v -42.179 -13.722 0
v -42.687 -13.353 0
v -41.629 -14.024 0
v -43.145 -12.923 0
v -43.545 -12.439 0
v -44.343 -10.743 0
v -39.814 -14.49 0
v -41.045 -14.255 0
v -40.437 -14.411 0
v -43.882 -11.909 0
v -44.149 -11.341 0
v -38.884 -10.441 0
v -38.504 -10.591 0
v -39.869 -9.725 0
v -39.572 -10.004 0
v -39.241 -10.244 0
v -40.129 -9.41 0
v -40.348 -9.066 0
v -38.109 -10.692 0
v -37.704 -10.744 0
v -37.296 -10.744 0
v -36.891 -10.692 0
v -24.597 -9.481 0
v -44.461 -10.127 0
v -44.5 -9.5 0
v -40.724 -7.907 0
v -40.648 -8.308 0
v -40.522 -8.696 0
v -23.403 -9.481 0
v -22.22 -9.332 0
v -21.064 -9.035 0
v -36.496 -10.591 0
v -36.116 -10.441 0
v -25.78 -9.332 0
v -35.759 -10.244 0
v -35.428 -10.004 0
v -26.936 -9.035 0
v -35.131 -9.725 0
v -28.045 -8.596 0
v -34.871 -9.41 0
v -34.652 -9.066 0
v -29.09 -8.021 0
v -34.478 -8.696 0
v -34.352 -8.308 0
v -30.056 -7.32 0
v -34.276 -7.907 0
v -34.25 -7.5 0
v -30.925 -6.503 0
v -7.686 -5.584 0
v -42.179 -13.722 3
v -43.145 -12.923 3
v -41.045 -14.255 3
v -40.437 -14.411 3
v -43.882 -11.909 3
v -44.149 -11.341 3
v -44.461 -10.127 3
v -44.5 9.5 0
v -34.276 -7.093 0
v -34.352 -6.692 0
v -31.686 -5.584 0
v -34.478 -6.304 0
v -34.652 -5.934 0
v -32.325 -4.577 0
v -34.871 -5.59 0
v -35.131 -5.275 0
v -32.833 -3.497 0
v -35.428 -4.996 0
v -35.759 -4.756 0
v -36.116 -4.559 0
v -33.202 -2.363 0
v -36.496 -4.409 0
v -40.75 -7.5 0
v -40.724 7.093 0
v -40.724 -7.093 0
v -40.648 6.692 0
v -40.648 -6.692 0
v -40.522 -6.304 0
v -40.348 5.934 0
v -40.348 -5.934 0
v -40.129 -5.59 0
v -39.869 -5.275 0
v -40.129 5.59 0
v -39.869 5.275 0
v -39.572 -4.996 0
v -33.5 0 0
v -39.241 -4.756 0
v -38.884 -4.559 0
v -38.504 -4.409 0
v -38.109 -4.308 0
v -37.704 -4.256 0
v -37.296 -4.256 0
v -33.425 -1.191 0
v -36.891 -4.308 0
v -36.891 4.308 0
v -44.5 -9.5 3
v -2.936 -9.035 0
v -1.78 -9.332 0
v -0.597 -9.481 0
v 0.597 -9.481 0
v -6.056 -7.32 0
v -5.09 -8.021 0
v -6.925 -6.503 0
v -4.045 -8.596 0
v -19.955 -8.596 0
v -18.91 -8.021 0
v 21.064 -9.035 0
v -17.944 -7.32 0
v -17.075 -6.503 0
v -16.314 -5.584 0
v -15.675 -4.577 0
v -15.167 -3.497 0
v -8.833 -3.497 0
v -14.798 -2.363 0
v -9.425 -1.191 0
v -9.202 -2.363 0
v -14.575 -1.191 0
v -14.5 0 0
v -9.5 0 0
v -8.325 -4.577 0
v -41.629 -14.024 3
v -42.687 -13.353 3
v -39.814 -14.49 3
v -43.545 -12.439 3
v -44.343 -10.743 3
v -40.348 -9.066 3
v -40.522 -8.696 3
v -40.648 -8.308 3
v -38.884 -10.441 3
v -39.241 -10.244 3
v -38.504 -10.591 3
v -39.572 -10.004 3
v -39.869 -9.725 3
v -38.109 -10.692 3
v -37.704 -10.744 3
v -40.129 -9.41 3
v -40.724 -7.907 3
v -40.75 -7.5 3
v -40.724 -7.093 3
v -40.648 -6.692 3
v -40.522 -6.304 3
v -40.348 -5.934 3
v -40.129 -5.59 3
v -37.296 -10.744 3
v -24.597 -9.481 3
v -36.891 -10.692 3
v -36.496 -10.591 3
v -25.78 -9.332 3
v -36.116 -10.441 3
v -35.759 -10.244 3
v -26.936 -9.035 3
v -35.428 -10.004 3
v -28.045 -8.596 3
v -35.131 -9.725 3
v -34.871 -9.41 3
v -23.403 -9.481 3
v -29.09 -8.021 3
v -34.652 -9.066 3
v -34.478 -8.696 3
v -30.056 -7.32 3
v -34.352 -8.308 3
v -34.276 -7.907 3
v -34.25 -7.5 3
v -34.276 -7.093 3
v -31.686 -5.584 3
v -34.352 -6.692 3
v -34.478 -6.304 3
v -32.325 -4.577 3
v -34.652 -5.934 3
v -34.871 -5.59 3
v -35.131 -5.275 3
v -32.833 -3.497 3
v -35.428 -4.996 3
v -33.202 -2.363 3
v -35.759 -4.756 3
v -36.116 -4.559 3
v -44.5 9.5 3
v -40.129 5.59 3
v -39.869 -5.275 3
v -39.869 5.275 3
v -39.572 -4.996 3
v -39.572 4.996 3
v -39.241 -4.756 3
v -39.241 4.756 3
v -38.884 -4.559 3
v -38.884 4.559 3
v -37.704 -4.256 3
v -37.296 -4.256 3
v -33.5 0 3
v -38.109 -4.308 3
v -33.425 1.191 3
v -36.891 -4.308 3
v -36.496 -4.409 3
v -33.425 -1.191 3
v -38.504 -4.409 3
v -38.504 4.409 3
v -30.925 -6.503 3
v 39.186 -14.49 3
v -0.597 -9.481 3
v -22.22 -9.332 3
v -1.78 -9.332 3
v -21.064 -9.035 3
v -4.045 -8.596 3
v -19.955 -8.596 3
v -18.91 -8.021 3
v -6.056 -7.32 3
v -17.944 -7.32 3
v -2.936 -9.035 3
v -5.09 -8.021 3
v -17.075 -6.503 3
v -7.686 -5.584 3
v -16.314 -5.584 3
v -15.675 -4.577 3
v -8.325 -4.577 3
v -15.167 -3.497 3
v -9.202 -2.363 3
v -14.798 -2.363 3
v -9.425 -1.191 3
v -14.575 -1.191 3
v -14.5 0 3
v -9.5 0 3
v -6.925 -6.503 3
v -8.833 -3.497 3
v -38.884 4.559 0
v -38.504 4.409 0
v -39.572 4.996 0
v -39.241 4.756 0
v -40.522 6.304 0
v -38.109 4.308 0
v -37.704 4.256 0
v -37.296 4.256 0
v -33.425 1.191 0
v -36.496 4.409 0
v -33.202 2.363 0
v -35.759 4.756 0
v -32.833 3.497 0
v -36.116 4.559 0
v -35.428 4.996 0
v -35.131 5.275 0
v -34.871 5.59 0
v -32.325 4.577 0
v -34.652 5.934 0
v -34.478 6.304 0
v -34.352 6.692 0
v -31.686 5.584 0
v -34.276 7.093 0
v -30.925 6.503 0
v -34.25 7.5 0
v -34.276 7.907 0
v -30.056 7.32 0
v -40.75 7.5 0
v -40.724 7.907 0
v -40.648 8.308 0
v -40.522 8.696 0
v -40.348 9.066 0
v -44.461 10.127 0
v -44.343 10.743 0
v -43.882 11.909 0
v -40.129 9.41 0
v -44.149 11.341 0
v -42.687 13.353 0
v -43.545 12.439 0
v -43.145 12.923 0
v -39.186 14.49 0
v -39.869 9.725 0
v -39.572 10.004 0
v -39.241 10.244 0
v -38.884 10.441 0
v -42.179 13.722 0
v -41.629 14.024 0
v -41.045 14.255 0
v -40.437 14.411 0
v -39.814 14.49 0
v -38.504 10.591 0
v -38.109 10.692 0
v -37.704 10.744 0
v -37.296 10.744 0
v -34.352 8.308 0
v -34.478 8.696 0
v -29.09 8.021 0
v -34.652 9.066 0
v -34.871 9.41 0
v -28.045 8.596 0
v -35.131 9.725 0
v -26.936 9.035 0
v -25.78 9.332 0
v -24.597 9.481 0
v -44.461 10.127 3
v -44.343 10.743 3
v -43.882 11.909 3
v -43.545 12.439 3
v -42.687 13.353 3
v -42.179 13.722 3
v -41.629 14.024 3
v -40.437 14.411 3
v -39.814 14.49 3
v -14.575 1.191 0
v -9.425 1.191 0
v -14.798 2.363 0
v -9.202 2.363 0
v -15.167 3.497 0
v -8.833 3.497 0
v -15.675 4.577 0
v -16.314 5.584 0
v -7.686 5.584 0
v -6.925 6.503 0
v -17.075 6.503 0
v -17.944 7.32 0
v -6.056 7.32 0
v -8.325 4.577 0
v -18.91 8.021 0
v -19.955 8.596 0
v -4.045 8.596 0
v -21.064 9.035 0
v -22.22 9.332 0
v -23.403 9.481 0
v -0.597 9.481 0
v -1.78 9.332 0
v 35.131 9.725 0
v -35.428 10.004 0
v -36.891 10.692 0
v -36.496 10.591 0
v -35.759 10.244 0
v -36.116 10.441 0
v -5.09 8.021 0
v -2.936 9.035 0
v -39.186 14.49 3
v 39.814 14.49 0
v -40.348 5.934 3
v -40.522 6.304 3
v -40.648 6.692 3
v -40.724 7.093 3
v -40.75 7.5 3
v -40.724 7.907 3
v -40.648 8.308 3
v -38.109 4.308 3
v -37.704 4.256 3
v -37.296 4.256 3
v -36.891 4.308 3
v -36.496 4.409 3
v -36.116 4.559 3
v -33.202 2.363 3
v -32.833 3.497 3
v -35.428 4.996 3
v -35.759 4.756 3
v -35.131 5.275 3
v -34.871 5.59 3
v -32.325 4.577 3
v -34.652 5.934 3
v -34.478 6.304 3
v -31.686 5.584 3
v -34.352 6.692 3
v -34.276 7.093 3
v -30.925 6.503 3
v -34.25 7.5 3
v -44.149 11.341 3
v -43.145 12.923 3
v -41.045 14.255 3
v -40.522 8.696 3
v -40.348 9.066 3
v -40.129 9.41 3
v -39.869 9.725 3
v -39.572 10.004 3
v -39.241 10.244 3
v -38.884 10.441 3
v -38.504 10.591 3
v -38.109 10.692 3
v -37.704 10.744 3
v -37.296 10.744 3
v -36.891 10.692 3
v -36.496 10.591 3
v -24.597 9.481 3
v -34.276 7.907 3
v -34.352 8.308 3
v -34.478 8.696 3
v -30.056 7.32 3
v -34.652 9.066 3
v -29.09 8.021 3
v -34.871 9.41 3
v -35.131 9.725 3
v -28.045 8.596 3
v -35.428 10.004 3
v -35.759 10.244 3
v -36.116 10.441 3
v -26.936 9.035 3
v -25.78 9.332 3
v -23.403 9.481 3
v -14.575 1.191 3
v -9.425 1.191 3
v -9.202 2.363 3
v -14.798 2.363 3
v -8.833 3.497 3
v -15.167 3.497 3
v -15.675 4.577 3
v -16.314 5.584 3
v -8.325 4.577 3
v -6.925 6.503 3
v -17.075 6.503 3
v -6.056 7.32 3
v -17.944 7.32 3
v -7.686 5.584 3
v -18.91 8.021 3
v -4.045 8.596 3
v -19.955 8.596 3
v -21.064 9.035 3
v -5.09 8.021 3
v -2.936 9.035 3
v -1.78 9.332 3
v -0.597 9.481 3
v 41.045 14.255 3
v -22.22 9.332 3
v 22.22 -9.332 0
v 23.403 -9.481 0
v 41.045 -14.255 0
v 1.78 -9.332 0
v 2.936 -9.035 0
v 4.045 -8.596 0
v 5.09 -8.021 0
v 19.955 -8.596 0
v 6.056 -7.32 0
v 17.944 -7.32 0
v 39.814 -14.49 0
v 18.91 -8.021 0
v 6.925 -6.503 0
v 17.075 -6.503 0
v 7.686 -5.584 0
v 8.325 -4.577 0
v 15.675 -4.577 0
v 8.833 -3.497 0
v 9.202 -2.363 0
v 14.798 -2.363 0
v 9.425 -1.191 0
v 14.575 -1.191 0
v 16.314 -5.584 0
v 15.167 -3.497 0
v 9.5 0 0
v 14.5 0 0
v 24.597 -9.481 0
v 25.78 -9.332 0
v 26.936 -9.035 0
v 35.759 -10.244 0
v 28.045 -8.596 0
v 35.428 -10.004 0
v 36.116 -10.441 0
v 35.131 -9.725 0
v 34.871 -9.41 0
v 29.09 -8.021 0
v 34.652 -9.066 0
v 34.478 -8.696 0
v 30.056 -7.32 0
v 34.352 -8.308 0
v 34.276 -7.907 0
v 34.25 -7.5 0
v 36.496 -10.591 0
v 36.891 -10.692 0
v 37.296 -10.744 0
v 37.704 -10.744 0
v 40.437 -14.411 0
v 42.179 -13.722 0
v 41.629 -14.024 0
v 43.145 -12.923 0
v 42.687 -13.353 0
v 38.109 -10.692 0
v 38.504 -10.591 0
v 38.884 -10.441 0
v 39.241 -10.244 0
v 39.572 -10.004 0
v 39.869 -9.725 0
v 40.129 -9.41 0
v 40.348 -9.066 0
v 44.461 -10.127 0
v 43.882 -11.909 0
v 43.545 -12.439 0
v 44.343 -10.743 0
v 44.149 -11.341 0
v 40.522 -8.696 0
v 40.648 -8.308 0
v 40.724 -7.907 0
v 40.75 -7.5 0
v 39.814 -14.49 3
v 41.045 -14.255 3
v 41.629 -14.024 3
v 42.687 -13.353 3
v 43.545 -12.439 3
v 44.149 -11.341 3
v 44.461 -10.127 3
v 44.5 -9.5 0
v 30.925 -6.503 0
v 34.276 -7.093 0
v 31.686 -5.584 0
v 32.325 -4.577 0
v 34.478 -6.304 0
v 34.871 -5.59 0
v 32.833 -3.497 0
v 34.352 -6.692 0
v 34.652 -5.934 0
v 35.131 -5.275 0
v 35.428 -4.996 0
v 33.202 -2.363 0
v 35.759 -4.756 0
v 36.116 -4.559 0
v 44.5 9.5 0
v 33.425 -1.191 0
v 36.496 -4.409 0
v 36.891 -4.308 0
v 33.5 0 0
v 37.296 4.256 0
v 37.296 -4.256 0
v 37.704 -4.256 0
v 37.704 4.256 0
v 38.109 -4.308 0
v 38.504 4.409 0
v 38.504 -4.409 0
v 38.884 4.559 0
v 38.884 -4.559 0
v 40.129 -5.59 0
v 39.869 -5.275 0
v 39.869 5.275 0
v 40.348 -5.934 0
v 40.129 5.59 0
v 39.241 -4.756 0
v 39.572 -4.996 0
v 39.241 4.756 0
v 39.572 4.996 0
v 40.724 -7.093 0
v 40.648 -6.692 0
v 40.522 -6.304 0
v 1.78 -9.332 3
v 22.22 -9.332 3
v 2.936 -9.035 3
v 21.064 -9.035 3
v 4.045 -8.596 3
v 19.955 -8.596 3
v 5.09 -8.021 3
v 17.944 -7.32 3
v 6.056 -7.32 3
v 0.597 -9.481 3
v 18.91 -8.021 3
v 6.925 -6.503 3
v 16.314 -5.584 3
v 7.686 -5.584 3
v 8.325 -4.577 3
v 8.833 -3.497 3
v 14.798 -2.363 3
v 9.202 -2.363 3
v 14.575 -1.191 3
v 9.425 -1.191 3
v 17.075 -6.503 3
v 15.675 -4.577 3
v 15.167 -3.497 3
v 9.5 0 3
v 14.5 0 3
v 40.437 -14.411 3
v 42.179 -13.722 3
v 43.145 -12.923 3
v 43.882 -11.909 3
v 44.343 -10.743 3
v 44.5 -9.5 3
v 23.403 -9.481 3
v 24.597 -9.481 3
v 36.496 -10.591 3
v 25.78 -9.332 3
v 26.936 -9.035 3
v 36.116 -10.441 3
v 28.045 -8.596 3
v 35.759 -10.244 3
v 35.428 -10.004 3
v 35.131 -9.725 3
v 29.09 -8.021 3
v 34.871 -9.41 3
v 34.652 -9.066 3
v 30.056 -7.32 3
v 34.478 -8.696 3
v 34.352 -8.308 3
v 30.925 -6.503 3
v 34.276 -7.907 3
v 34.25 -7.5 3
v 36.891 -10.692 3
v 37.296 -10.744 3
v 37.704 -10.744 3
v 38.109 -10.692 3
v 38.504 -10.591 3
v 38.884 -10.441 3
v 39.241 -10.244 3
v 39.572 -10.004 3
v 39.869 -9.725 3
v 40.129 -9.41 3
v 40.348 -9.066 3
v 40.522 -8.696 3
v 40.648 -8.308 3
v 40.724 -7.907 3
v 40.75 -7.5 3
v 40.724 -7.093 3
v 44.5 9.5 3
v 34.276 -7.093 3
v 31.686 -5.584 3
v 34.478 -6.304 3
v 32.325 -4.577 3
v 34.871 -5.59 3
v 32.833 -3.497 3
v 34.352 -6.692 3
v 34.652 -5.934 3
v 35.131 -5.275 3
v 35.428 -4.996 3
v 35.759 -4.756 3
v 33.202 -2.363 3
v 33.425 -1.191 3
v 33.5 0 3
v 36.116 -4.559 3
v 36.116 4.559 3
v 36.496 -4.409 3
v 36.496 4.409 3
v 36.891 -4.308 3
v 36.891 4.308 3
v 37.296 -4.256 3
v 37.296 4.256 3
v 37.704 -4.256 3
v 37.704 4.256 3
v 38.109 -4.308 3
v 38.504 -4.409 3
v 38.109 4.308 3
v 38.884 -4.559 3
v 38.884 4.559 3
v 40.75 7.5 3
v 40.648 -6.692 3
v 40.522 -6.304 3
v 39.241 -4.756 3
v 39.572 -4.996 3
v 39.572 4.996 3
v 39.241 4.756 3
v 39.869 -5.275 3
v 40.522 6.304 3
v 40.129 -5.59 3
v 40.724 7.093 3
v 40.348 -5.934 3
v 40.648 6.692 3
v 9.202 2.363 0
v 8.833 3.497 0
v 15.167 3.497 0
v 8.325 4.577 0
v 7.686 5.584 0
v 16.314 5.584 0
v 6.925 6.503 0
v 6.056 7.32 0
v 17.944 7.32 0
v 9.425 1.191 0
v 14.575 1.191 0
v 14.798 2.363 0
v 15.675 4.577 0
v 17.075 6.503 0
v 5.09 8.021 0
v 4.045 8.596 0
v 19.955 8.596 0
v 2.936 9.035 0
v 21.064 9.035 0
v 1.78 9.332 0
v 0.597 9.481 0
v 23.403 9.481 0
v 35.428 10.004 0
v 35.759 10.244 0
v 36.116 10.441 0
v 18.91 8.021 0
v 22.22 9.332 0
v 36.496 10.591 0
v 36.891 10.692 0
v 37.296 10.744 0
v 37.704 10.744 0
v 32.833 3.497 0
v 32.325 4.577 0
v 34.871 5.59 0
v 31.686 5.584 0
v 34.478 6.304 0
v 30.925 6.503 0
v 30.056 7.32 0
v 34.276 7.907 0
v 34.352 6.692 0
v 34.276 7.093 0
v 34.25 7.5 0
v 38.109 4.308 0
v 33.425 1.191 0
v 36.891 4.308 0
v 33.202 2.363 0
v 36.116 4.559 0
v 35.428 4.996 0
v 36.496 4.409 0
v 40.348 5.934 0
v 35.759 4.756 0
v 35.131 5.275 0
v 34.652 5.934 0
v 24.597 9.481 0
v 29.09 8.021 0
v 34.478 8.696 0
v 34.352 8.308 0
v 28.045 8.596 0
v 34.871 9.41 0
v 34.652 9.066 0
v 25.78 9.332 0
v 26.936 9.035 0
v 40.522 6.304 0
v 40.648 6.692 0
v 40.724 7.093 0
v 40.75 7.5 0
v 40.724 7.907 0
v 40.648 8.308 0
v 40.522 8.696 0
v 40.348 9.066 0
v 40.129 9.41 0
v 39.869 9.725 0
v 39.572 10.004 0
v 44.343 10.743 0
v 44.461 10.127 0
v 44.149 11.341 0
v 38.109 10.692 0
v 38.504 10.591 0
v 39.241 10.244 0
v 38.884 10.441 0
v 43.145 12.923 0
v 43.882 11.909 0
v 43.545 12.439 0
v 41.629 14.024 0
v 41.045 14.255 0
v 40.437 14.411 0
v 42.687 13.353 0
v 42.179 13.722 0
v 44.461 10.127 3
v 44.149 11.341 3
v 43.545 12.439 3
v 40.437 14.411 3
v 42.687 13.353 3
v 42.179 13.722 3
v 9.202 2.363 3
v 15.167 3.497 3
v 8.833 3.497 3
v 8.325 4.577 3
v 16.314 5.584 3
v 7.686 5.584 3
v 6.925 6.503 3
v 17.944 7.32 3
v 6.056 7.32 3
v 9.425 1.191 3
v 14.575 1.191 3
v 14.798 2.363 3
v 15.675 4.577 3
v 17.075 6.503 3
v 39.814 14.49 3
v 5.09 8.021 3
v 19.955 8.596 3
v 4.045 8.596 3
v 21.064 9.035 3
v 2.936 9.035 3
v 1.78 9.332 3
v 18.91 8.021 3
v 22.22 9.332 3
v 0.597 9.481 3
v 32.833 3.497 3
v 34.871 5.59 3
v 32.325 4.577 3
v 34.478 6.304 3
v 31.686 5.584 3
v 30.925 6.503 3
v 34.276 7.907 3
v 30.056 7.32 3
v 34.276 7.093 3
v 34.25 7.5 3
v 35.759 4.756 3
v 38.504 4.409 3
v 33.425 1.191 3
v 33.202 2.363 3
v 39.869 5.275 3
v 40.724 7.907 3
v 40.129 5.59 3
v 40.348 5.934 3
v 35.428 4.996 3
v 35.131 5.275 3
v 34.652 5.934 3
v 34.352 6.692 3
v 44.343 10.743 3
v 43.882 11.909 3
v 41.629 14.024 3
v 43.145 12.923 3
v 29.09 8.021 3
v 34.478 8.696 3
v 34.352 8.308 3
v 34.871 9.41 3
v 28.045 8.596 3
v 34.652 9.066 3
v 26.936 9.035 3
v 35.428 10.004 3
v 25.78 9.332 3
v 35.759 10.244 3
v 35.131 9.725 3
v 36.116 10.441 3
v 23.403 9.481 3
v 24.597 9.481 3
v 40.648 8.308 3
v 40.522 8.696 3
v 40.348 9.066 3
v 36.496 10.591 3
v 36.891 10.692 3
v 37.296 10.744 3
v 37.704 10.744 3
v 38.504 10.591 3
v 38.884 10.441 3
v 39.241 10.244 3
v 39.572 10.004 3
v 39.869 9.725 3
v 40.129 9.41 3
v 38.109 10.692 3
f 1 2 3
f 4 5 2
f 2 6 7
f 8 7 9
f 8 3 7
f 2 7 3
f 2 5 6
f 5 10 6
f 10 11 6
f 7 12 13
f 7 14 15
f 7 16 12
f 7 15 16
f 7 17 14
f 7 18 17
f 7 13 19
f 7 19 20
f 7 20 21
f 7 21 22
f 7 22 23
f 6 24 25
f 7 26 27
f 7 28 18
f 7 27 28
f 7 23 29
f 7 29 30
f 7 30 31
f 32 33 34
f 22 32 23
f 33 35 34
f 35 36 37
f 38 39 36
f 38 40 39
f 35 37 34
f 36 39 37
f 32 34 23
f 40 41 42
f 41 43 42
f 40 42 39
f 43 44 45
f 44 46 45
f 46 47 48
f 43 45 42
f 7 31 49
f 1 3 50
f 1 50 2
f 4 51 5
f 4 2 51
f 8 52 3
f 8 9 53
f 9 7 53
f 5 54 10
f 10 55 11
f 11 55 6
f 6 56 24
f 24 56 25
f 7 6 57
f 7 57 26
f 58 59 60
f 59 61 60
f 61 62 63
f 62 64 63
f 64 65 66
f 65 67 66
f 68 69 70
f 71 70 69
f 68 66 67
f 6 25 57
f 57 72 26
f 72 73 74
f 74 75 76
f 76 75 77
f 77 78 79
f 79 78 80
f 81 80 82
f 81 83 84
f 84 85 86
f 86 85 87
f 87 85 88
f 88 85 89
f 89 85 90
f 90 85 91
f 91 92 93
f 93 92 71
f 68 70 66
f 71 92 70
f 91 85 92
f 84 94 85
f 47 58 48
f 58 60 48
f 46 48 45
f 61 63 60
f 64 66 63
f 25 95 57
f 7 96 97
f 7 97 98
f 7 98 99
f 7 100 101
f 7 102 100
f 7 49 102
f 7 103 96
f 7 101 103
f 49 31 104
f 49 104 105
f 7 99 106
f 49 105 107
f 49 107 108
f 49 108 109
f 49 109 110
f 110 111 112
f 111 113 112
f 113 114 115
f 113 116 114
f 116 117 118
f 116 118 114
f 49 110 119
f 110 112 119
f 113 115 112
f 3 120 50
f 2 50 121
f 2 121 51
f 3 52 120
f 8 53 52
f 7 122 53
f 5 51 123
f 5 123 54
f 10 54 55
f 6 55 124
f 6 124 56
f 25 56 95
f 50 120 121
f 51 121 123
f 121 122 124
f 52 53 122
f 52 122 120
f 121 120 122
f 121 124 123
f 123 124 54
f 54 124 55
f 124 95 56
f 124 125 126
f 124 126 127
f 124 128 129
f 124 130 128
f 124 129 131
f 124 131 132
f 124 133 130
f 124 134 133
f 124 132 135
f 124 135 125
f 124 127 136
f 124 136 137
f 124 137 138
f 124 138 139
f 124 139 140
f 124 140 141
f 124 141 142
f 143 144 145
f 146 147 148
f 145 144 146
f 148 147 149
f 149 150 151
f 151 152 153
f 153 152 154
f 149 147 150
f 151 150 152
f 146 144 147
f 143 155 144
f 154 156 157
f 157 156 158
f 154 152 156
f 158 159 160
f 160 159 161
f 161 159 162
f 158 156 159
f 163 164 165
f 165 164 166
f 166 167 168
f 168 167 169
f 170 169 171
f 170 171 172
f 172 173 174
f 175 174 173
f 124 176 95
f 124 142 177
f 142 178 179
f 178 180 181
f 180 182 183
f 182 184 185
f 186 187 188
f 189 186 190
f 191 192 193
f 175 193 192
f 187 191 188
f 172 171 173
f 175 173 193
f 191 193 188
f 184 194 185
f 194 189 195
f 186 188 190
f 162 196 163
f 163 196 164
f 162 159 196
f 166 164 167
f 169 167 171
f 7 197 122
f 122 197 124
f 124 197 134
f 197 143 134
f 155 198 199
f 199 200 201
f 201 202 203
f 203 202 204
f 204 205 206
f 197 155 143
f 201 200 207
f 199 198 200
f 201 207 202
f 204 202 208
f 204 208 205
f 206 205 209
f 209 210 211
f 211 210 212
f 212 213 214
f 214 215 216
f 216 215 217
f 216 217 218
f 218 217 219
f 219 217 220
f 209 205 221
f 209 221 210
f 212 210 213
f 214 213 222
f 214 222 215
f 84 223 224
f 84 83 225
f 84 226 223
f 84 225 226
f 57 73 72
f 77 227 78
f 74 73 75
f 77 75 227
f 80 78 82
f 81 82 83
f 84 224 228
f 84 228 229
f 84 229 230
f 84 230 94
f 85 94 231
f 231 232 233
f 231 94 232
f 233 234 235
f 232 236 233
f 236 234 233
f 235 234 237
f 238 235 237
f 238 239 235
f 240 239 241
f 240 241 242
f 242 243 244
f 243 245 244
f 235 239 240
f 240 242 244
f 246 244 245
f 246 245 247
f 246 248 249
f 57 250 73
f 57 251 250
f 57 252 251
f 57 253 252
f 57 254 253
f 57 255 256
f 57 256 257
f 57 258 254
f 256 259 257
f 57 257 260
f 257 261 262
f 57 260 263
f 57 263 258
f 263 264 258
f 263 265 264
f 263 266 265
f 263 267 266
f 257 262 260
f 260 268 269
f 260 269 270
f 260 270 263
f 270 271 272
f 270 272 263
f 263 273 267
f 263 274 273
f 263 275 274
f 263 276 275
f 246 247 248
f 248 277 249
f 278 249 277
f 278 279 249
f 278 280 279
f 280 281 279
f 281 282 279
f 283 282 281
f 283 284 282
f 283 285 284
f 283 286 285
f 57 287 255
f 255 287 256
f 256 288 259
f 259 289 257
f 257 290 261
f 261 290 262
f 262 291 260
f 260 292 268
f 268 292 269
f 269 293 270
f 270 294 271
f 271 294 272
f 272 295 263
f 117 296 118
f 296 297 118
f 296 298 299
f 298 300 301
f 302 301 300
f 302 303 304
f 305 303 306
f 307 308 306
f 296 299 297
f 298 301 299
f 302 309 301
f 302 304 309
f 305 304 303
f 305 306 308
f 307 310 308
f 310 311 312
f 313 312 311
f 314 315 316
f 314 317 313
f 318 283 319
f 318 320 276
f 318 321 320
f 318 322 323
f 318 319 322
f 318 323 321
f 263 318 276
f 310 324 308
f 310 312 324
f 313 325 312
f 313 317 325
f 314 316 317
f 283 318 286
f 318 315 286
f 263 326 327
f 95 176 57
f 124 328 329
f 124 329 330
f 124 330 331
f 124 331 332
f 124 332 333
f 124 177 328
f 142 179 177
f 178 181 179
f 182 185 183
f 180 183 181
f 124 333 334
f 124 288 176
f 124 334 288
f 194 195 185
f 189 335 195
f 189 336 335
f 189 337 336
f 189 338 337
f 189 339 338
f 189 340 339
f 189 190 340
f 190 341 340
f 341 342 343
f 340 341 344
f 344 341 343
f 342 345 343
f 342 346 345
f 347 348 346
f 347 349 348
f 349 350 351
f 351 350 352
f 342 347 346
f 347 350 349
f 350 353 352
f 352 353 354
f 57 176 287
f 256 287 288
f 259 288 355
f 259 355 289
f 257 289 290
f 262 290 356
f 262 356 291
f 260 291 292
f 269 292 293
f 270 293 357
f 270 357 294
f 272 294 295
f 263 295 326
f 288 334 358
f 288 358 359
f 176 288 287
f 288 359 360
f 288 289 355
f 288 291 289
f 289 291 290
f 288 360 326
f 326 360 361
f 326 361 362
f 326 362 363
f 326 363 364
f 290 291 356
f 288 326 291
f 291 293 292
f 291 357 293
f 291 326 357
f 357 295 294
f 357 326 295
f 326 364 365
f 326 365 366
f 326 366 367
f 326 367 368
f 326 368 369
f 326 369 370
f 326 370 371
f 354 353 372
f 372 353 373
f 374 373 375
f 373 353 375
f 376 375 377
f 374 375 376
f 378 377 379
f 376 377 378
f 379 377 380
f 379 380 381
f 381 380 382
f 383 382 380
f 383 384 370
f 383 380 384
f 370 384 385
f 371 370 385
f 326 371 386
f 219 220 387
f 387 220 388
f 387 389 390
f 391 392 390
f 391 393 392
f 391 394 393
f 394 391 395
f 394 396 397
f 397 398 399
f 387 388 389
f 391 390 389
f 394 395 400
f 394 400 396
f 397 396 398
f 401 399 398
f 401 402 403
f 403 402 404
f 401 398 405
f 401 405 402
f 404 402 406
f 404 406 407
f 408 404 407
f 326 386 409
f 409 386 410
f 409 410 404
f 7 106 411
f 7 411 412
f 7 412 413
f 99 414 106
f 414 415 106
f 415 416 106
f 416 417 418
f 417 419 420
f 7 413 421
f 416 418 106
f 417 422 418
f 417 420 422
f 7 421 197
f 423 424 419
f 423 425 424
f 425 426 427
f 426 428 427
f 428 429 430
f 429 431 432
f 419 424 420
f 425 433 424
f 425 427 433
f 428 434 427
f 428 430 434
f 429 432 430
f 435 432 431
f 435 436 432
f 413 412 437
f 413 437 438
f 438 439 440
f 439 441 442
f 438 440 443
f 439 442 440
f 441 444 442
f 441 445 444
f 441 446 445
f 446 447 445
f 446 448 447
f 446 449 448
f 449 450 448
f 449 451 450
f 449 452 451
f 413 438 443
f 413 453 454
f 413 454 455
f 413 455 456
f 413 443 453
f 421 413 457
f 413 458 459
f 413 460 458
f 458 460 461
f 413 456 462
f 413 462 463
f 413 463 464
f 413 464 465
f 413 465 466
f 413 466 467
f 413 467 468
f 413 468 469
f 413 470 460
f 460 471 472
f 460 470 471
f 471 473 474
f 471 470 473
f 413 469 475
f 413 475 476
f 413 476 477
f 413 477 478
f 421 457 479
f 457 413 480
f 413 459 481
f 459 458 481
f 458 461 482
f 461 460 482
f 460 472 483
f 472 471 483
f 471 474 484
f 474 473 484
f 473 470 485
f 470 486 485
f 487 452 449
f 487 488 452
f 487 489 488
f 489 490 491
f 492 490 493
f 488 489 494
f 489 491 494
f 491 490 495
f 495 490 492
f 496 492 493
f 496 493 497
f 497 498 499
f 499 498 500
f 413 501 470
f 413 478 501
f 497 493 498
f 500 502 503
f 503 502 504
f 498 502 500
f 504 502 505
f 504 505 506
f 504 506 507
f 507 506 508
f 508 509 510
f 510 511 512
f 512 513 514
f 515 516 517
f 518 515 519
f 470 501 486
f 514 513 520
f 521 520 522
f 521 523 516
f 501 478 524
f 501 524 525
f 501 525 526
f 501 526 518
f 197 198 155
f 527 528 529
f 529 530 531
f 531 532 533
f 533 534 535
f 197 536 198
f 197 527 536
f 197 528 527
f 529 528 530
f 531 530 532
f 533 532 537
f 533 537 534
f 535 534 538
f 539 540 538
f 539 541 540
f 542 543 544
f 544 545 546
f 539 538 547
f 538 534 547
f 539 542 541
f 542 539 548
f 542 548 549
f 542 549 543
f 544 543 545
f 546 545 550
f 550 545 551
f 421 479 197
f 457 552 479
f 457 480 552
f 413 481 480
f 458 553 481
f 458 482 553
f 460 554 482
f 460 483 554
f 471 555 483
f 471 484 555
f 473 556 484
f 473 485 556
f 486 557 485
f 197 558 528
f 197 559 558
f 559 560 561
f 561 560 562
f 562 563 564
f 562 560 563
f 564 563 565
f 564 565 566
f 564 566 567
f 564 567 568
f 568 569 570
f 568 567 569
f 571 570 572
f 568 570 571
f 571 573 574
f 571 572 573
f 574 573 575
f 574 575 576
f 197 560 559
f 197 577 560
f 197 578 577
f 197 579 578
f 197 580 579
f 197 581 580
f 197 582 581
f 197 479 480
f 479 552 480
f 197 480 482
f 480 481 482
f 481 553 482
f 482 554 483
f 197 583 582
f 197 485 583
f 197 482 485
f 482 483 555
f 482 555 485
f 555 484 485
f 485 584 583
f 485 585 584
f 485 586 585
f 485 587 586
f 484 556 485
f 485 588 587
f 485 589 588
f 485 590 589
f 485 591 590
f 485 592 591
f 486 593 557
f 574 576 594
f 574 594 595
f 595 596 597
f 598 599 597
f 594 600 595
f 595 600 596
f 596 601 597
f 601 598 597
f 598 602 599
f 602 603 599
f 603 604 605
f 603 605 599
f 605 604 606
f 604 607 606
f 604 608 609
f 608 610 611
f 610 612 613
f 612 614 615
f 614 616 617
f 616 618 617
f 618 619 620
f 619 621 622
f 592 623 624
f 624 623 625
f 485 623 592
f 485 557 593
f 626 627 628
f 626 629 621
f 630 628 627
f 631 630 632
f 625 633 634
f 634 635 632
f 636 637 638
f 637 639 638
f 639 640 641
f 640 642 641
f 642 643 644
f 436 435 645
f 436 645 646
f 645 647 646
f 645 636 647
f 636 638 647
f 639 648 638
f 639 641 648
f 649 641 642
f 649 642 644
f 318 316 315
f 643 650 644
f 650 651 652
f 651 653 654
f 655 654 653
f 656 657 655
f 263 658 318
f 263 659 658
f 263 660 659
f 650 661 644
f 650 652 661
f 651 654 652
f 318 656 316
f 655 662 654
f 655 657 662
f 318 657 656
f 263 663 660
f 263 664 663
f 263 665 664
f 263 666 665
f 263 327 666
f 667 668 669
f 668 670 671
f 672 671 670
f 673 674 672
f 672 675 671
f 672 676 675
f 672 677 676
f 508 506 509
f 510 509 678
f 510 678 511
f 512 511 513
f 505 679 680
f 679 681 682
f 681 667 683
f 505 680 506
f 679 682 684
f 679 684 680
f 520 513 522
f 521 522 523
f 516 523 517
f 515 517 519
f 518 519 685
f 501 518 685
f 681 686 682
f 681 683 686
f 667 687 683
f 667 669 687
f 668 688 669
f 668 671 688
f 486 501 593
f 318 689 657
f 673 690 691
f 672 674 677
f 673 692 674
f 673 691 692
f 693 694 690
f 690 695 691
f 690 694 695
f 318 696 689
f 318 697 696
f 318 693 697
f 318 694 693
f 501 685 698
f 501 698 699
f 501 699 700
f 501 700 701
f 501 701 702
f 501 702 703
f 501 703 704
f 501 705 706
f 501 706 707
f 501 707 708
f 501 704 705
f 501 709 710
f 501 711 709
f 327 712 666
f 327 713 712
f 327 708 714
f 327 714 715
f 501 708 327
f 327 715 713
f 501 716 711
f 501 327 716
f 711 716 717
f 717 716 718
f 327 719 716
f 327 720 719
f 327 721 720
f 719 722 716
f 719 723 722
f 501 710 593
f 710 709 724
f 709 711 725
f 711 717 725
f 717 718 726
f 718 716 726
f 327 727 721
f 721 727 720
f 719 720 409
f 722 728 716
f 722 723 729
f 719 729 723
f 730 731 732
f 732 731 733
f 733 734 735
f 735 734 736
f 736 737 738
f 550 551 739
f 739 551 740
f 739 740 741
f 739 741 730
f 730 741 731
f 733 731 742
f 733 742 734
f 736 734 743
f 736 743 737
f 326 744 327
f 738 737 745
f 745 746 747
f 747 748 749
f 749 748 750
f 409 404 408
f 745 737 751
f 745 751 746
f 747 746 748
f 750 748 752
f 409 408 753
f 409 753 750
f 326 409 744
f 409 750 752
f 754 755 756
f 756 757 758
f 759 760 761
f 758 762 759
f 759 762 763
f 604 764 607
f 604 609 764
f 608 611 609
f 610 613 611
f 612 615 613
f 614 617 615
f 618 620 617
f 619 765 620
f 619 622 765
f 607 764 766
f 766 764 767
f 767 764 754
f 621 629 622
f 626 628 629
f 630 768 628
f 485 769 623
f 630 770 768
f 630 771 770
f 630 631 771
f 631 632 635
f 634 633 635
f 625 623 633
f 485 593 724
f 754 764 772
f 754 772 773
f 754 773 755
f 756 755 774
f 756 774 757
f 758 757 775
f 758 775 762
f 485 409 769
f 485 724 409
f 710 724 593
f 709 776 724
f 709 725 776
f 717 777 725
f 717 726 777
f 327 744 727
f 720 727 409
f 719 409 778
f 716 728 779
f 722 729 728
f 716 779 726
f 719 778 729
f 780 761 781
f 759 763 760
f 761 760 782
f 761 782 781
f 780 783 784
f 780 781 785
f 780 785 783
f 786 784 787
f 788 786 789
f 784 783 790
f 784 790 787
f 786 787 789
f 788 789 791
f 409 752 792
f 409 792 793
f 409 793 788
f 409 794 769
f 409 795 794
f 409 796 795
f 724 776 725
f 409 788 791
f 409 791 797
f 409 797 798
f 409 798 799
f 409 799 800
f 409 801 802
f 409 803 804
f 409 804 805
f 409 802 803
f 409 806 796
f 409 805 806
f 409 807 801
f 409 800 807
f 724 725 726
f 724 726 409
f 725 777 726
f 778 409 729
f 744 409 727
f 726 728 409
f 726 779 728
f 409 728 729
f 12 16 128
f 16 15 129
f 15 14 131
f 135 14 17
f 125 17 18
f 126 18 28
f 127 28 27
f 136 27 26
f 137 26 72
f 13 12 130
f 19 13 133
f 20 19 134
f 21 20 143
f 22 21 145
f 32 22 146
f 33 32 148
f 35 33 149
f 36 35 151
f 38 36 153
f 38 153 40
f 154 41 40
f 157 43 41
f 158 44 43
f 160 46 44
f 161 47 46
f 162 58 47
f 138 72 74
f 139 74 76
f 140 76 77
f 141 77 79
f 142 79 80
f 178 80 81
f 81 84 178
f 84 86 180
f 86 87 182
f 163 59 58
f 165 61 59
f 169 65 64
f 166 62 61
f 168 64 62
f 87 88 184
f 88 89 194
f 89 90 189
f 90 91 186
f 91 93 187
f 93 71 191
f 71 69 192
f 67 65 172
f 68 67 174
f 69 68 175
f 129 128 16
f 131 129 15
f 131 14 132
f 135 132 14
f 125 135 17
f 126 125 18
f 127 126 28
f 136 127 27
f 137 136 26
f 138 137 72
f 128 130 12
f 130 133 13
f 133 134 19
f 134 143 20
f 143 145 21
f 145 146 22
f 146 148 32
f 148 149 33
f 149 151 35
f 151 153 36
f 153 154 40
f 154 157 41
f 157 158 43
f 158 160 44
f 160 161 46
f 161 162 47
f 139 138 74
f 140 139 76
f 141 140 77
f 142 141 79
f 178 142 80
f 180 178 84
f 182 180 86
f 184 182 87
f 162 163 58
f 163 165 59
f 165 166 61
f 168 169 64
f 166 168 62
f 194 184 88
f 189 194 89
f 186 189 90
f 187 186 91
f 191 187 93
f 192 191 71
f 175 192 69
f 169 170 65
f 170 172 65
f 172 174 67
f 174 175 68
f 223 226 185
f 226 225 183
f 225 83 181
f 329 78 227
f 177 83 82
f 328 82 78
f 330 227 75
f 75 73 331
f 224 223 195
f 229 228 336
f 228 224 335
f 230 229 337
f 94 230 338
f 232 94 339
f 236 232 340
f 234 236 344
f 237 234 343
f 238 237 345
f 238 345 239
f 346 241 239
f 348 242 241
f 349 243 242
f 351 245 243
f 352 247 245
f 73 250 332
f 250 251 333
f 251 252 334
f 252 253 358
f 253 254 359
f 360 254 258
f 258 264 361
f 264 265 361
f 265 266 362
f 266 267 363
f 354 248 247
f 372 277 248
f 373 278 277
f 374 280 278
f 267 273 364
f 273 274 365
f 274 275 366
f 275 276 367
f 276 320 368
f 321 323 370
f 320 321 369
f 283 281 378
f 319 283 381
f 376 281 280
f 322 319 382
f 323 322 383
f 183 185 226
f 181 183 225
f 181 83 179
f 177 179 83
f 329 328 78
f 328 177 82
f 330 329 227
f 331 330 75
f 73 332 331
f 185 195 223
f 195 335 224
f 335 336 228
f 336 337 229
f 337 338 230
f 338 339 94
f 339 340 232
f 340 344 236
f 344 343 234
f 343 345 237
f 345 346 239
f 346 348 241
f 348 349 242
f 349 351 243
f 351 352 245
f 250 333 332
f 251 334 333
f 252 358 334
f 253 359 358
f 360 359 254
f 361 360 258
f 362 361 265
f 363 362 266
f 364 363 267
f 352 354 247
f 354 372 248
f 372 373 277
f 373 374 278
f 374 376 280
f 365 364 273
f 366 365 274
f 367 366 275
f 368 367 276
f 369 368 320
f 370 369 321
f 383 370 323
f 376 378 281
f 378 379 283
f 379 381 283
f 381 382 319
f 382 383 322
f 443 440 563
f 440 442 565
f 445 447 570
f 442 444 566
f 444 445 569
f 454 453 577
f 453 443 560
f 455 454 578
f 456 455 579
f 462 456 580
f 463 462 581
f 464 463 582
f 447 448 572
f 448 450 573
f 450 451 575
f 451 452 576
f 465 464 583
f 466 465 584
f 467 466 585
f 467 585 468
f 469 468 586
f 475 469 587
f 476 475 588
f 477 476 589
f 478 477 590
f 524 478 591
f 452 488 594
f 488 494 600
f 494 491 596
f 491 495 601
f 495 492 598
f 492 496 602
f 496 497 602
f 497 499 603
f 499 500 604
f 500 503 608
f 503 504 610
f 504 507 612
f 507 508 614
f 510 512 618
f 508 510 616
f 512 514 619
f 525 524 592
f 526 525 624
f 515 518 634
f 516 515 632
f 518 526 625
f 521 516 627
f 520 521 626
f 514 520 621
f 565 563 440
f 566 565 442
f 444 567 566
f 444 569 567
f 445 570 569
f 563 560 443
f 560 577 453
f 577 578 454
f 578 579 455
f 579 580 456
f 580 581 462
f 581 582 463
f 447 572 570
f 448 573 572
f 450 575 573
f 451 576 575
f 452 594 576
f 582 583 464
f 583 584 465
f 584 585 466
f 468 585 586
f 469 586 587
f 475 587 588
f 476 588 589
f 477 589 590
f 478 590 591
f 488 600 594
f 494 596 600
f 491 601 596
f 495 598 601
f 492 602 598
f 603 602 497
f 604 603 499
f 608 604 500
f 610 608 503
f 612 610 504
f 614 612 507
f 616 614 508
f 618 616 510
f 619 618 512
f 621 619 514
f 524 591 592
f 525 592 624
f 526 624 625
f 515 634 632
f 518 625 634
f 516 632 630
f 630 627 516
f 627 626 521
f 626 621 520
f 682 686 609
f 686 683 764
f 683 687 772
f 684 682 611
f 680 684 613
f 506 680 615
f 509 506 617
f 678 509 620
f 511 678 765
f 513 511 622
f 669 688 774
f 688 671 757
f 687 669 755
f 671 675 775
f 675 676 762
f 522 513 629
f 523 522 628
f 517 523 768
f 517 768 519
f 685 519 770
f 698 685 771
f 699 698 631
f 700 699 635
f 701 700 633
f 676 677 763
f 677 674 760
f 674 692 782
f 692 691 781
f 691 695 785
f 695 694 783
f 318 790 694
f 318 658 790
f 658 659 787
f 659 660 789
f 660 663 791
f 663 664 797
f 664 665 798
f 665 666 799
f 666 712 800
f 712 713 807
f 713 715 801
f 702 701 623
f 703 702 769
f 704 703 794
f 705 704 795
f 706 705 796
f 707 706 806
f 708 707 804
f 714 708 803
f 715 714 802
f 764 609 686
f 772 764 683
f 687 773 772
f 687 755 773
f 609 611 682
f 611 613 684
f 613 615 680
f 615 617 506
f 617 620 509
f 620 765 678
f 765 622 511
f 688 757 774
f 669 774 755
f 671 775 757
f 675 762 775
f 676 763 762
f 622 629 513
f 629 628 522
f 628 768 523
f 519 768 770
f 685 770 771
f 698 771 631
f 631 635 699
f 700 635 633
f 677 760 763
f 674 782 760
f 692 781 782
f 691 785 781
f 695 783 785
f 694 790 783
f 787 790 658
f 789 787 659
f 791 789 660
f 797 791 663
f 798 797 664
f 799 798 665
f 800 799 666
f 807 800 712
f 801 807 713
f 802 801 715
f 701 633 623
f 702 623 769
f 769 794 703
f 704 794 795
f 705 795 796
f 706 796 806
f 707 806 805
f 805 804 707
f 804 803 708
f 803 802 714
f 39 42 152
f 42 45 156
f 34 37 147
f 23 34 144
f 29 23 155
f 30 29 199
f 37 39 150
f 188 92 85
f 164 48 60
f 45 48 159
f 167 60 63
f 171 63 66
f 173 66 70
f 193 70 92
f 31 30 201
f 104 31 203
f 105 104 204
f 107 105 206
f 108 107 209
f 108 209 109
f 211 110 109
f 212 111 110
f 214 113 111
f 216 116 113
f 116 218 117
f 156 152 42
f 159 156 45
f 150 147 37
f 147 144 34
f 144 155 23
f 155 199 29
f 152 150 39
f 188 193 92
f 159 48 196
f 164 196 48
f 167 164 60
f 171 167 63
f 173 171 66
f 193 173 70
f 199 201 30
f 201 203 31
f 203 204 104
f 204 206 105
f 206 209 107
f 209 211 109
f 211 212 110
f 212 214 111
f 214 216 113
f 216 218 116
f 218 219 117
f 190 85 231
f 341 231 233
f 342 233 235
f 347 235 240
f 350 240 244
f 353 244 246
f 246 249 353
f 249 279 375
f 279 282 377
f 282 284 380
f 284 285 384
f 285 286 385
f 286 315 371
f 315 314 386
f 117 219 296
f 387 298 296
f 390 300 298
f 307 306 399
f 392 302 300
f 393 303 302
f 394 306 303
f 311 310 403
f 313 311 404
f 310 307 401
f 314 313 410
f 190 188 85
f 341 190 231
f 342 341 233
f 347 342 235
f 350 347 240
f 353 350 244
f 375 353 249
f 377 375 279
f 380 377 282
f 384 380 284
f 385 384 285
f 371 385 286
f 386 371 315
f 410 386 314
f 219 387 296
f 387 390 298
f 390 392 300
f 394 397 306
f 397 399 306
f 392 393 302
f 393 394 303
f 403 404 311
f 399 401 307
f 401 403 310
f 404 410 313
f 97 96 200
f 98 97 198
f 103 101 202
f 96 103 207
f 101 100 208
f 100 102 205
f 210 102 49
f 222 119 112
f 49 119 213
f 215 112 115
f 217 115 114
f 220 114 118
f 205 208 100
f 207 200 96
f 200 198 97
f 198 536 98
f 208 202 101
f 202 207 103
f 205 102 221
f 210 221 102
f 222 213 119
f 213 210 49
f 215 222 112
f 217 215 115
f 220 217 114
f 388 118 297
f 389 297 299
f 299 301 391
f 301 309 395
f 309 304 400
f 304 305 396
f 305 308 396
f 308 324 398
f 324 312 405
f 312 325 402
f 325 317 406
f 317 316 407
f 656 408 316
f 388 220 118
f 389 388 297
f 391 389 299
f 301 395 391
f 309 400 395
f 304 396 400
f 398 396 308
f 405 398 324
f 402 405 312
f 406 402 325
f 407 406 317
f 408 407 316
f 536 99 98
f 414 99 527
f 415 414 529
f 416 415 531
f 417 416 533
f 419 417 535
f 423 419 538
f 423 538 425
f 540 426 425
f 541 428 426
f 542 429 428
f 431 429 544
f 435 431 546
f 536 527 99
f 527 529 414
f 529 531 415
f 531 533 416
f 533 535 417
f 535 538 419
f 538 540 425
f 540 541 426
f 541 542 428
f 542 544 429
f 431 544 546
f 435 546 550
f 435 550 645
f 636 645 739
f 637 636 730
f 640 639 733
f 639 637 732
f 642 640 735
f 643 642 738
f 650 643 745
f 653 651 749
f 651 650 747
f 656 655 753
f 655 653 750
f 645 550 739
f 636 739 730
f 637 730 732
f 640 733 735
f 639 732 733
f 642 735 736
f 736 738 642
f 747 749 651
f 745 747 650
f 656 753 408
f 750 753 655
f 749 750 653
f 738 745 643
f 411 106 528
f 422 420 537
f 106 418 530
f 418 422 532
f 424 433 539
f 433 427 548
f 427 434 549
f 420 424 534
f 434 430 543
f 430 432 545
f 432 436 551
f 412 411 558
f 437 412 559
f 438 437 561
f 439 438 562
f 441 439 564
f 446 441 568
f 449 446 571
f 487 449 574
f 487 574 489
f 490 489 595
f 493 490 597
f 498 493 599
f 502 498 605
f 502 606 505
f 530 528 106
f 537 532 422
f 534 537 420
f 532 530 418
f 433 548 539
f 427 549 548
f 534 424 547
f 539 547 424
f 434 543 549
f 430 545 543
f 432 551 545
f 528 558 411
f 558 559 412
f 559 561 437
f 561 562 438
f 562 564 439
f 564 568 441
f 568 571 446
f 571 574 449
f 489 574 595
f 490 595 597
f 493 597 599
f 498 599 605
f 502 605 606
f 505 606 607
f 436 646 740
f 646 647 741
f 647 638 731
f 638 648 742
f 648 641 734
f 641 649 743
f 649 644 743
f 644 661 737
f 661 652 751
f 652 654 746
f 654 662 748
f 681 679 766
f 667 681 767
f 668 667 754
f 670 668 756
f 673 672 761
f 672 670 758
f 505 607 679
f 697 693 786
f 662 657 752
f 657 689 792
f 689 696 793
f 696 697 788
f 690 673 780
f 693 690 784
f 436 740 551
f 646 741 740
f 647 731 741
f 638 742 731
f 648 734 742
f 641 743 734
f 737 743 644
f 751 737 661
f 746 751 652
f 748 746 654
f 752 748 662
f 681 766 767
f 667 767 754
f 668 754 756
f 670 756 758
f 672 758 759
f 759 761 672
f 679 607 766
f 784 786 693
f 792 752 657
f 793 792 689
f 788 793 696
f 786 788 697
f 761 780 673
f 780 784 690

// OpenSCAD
$fn = 50;

difference() {
	union() {
		hull() {
			translate(v = [-39.5, 9.5, 0]) {
				cylinder(h = 3, r = 5);
			}
			translate(v = [39.5, 9.5, 0]) {
				cylinder(h = 3, r = 5);
			}
			translate(v = [-39.5, -9.5, 0]) {
				cylinder(h = 3, r = 5);
			}
			translate(v = [39.5, -9.5, 0]) {
				cylinder(h = 3, r = 5);
			}
		}
	}
	union() {
		translate(v = [-37.5, -7.5, 0]) {
			cylinder(h = 3, r = 3.25);
		}
		translate(v = [-37.5, 7.5, 0]) {
			cylinder(h = 3, r = 3.25);
		}
		translate(v = [37.5, -7.5, 0]) {
			cylinder(h = 3, r = 3.25);
		}
		translate(v = [37.5, 7.5, 0]) {
			cylinder(h = 3, r = 3.25);
		}
		translate(v = [-24.0, 0, 0.0]) {
			cylinder(h = 3, r = 9.5);
		}
		cylinder(h = 3, r = 9.5);
		translate(v = [24.0, 0, 0.0]) {
			cylinder(h = 3, r = 9.5);
		}
	}
}
